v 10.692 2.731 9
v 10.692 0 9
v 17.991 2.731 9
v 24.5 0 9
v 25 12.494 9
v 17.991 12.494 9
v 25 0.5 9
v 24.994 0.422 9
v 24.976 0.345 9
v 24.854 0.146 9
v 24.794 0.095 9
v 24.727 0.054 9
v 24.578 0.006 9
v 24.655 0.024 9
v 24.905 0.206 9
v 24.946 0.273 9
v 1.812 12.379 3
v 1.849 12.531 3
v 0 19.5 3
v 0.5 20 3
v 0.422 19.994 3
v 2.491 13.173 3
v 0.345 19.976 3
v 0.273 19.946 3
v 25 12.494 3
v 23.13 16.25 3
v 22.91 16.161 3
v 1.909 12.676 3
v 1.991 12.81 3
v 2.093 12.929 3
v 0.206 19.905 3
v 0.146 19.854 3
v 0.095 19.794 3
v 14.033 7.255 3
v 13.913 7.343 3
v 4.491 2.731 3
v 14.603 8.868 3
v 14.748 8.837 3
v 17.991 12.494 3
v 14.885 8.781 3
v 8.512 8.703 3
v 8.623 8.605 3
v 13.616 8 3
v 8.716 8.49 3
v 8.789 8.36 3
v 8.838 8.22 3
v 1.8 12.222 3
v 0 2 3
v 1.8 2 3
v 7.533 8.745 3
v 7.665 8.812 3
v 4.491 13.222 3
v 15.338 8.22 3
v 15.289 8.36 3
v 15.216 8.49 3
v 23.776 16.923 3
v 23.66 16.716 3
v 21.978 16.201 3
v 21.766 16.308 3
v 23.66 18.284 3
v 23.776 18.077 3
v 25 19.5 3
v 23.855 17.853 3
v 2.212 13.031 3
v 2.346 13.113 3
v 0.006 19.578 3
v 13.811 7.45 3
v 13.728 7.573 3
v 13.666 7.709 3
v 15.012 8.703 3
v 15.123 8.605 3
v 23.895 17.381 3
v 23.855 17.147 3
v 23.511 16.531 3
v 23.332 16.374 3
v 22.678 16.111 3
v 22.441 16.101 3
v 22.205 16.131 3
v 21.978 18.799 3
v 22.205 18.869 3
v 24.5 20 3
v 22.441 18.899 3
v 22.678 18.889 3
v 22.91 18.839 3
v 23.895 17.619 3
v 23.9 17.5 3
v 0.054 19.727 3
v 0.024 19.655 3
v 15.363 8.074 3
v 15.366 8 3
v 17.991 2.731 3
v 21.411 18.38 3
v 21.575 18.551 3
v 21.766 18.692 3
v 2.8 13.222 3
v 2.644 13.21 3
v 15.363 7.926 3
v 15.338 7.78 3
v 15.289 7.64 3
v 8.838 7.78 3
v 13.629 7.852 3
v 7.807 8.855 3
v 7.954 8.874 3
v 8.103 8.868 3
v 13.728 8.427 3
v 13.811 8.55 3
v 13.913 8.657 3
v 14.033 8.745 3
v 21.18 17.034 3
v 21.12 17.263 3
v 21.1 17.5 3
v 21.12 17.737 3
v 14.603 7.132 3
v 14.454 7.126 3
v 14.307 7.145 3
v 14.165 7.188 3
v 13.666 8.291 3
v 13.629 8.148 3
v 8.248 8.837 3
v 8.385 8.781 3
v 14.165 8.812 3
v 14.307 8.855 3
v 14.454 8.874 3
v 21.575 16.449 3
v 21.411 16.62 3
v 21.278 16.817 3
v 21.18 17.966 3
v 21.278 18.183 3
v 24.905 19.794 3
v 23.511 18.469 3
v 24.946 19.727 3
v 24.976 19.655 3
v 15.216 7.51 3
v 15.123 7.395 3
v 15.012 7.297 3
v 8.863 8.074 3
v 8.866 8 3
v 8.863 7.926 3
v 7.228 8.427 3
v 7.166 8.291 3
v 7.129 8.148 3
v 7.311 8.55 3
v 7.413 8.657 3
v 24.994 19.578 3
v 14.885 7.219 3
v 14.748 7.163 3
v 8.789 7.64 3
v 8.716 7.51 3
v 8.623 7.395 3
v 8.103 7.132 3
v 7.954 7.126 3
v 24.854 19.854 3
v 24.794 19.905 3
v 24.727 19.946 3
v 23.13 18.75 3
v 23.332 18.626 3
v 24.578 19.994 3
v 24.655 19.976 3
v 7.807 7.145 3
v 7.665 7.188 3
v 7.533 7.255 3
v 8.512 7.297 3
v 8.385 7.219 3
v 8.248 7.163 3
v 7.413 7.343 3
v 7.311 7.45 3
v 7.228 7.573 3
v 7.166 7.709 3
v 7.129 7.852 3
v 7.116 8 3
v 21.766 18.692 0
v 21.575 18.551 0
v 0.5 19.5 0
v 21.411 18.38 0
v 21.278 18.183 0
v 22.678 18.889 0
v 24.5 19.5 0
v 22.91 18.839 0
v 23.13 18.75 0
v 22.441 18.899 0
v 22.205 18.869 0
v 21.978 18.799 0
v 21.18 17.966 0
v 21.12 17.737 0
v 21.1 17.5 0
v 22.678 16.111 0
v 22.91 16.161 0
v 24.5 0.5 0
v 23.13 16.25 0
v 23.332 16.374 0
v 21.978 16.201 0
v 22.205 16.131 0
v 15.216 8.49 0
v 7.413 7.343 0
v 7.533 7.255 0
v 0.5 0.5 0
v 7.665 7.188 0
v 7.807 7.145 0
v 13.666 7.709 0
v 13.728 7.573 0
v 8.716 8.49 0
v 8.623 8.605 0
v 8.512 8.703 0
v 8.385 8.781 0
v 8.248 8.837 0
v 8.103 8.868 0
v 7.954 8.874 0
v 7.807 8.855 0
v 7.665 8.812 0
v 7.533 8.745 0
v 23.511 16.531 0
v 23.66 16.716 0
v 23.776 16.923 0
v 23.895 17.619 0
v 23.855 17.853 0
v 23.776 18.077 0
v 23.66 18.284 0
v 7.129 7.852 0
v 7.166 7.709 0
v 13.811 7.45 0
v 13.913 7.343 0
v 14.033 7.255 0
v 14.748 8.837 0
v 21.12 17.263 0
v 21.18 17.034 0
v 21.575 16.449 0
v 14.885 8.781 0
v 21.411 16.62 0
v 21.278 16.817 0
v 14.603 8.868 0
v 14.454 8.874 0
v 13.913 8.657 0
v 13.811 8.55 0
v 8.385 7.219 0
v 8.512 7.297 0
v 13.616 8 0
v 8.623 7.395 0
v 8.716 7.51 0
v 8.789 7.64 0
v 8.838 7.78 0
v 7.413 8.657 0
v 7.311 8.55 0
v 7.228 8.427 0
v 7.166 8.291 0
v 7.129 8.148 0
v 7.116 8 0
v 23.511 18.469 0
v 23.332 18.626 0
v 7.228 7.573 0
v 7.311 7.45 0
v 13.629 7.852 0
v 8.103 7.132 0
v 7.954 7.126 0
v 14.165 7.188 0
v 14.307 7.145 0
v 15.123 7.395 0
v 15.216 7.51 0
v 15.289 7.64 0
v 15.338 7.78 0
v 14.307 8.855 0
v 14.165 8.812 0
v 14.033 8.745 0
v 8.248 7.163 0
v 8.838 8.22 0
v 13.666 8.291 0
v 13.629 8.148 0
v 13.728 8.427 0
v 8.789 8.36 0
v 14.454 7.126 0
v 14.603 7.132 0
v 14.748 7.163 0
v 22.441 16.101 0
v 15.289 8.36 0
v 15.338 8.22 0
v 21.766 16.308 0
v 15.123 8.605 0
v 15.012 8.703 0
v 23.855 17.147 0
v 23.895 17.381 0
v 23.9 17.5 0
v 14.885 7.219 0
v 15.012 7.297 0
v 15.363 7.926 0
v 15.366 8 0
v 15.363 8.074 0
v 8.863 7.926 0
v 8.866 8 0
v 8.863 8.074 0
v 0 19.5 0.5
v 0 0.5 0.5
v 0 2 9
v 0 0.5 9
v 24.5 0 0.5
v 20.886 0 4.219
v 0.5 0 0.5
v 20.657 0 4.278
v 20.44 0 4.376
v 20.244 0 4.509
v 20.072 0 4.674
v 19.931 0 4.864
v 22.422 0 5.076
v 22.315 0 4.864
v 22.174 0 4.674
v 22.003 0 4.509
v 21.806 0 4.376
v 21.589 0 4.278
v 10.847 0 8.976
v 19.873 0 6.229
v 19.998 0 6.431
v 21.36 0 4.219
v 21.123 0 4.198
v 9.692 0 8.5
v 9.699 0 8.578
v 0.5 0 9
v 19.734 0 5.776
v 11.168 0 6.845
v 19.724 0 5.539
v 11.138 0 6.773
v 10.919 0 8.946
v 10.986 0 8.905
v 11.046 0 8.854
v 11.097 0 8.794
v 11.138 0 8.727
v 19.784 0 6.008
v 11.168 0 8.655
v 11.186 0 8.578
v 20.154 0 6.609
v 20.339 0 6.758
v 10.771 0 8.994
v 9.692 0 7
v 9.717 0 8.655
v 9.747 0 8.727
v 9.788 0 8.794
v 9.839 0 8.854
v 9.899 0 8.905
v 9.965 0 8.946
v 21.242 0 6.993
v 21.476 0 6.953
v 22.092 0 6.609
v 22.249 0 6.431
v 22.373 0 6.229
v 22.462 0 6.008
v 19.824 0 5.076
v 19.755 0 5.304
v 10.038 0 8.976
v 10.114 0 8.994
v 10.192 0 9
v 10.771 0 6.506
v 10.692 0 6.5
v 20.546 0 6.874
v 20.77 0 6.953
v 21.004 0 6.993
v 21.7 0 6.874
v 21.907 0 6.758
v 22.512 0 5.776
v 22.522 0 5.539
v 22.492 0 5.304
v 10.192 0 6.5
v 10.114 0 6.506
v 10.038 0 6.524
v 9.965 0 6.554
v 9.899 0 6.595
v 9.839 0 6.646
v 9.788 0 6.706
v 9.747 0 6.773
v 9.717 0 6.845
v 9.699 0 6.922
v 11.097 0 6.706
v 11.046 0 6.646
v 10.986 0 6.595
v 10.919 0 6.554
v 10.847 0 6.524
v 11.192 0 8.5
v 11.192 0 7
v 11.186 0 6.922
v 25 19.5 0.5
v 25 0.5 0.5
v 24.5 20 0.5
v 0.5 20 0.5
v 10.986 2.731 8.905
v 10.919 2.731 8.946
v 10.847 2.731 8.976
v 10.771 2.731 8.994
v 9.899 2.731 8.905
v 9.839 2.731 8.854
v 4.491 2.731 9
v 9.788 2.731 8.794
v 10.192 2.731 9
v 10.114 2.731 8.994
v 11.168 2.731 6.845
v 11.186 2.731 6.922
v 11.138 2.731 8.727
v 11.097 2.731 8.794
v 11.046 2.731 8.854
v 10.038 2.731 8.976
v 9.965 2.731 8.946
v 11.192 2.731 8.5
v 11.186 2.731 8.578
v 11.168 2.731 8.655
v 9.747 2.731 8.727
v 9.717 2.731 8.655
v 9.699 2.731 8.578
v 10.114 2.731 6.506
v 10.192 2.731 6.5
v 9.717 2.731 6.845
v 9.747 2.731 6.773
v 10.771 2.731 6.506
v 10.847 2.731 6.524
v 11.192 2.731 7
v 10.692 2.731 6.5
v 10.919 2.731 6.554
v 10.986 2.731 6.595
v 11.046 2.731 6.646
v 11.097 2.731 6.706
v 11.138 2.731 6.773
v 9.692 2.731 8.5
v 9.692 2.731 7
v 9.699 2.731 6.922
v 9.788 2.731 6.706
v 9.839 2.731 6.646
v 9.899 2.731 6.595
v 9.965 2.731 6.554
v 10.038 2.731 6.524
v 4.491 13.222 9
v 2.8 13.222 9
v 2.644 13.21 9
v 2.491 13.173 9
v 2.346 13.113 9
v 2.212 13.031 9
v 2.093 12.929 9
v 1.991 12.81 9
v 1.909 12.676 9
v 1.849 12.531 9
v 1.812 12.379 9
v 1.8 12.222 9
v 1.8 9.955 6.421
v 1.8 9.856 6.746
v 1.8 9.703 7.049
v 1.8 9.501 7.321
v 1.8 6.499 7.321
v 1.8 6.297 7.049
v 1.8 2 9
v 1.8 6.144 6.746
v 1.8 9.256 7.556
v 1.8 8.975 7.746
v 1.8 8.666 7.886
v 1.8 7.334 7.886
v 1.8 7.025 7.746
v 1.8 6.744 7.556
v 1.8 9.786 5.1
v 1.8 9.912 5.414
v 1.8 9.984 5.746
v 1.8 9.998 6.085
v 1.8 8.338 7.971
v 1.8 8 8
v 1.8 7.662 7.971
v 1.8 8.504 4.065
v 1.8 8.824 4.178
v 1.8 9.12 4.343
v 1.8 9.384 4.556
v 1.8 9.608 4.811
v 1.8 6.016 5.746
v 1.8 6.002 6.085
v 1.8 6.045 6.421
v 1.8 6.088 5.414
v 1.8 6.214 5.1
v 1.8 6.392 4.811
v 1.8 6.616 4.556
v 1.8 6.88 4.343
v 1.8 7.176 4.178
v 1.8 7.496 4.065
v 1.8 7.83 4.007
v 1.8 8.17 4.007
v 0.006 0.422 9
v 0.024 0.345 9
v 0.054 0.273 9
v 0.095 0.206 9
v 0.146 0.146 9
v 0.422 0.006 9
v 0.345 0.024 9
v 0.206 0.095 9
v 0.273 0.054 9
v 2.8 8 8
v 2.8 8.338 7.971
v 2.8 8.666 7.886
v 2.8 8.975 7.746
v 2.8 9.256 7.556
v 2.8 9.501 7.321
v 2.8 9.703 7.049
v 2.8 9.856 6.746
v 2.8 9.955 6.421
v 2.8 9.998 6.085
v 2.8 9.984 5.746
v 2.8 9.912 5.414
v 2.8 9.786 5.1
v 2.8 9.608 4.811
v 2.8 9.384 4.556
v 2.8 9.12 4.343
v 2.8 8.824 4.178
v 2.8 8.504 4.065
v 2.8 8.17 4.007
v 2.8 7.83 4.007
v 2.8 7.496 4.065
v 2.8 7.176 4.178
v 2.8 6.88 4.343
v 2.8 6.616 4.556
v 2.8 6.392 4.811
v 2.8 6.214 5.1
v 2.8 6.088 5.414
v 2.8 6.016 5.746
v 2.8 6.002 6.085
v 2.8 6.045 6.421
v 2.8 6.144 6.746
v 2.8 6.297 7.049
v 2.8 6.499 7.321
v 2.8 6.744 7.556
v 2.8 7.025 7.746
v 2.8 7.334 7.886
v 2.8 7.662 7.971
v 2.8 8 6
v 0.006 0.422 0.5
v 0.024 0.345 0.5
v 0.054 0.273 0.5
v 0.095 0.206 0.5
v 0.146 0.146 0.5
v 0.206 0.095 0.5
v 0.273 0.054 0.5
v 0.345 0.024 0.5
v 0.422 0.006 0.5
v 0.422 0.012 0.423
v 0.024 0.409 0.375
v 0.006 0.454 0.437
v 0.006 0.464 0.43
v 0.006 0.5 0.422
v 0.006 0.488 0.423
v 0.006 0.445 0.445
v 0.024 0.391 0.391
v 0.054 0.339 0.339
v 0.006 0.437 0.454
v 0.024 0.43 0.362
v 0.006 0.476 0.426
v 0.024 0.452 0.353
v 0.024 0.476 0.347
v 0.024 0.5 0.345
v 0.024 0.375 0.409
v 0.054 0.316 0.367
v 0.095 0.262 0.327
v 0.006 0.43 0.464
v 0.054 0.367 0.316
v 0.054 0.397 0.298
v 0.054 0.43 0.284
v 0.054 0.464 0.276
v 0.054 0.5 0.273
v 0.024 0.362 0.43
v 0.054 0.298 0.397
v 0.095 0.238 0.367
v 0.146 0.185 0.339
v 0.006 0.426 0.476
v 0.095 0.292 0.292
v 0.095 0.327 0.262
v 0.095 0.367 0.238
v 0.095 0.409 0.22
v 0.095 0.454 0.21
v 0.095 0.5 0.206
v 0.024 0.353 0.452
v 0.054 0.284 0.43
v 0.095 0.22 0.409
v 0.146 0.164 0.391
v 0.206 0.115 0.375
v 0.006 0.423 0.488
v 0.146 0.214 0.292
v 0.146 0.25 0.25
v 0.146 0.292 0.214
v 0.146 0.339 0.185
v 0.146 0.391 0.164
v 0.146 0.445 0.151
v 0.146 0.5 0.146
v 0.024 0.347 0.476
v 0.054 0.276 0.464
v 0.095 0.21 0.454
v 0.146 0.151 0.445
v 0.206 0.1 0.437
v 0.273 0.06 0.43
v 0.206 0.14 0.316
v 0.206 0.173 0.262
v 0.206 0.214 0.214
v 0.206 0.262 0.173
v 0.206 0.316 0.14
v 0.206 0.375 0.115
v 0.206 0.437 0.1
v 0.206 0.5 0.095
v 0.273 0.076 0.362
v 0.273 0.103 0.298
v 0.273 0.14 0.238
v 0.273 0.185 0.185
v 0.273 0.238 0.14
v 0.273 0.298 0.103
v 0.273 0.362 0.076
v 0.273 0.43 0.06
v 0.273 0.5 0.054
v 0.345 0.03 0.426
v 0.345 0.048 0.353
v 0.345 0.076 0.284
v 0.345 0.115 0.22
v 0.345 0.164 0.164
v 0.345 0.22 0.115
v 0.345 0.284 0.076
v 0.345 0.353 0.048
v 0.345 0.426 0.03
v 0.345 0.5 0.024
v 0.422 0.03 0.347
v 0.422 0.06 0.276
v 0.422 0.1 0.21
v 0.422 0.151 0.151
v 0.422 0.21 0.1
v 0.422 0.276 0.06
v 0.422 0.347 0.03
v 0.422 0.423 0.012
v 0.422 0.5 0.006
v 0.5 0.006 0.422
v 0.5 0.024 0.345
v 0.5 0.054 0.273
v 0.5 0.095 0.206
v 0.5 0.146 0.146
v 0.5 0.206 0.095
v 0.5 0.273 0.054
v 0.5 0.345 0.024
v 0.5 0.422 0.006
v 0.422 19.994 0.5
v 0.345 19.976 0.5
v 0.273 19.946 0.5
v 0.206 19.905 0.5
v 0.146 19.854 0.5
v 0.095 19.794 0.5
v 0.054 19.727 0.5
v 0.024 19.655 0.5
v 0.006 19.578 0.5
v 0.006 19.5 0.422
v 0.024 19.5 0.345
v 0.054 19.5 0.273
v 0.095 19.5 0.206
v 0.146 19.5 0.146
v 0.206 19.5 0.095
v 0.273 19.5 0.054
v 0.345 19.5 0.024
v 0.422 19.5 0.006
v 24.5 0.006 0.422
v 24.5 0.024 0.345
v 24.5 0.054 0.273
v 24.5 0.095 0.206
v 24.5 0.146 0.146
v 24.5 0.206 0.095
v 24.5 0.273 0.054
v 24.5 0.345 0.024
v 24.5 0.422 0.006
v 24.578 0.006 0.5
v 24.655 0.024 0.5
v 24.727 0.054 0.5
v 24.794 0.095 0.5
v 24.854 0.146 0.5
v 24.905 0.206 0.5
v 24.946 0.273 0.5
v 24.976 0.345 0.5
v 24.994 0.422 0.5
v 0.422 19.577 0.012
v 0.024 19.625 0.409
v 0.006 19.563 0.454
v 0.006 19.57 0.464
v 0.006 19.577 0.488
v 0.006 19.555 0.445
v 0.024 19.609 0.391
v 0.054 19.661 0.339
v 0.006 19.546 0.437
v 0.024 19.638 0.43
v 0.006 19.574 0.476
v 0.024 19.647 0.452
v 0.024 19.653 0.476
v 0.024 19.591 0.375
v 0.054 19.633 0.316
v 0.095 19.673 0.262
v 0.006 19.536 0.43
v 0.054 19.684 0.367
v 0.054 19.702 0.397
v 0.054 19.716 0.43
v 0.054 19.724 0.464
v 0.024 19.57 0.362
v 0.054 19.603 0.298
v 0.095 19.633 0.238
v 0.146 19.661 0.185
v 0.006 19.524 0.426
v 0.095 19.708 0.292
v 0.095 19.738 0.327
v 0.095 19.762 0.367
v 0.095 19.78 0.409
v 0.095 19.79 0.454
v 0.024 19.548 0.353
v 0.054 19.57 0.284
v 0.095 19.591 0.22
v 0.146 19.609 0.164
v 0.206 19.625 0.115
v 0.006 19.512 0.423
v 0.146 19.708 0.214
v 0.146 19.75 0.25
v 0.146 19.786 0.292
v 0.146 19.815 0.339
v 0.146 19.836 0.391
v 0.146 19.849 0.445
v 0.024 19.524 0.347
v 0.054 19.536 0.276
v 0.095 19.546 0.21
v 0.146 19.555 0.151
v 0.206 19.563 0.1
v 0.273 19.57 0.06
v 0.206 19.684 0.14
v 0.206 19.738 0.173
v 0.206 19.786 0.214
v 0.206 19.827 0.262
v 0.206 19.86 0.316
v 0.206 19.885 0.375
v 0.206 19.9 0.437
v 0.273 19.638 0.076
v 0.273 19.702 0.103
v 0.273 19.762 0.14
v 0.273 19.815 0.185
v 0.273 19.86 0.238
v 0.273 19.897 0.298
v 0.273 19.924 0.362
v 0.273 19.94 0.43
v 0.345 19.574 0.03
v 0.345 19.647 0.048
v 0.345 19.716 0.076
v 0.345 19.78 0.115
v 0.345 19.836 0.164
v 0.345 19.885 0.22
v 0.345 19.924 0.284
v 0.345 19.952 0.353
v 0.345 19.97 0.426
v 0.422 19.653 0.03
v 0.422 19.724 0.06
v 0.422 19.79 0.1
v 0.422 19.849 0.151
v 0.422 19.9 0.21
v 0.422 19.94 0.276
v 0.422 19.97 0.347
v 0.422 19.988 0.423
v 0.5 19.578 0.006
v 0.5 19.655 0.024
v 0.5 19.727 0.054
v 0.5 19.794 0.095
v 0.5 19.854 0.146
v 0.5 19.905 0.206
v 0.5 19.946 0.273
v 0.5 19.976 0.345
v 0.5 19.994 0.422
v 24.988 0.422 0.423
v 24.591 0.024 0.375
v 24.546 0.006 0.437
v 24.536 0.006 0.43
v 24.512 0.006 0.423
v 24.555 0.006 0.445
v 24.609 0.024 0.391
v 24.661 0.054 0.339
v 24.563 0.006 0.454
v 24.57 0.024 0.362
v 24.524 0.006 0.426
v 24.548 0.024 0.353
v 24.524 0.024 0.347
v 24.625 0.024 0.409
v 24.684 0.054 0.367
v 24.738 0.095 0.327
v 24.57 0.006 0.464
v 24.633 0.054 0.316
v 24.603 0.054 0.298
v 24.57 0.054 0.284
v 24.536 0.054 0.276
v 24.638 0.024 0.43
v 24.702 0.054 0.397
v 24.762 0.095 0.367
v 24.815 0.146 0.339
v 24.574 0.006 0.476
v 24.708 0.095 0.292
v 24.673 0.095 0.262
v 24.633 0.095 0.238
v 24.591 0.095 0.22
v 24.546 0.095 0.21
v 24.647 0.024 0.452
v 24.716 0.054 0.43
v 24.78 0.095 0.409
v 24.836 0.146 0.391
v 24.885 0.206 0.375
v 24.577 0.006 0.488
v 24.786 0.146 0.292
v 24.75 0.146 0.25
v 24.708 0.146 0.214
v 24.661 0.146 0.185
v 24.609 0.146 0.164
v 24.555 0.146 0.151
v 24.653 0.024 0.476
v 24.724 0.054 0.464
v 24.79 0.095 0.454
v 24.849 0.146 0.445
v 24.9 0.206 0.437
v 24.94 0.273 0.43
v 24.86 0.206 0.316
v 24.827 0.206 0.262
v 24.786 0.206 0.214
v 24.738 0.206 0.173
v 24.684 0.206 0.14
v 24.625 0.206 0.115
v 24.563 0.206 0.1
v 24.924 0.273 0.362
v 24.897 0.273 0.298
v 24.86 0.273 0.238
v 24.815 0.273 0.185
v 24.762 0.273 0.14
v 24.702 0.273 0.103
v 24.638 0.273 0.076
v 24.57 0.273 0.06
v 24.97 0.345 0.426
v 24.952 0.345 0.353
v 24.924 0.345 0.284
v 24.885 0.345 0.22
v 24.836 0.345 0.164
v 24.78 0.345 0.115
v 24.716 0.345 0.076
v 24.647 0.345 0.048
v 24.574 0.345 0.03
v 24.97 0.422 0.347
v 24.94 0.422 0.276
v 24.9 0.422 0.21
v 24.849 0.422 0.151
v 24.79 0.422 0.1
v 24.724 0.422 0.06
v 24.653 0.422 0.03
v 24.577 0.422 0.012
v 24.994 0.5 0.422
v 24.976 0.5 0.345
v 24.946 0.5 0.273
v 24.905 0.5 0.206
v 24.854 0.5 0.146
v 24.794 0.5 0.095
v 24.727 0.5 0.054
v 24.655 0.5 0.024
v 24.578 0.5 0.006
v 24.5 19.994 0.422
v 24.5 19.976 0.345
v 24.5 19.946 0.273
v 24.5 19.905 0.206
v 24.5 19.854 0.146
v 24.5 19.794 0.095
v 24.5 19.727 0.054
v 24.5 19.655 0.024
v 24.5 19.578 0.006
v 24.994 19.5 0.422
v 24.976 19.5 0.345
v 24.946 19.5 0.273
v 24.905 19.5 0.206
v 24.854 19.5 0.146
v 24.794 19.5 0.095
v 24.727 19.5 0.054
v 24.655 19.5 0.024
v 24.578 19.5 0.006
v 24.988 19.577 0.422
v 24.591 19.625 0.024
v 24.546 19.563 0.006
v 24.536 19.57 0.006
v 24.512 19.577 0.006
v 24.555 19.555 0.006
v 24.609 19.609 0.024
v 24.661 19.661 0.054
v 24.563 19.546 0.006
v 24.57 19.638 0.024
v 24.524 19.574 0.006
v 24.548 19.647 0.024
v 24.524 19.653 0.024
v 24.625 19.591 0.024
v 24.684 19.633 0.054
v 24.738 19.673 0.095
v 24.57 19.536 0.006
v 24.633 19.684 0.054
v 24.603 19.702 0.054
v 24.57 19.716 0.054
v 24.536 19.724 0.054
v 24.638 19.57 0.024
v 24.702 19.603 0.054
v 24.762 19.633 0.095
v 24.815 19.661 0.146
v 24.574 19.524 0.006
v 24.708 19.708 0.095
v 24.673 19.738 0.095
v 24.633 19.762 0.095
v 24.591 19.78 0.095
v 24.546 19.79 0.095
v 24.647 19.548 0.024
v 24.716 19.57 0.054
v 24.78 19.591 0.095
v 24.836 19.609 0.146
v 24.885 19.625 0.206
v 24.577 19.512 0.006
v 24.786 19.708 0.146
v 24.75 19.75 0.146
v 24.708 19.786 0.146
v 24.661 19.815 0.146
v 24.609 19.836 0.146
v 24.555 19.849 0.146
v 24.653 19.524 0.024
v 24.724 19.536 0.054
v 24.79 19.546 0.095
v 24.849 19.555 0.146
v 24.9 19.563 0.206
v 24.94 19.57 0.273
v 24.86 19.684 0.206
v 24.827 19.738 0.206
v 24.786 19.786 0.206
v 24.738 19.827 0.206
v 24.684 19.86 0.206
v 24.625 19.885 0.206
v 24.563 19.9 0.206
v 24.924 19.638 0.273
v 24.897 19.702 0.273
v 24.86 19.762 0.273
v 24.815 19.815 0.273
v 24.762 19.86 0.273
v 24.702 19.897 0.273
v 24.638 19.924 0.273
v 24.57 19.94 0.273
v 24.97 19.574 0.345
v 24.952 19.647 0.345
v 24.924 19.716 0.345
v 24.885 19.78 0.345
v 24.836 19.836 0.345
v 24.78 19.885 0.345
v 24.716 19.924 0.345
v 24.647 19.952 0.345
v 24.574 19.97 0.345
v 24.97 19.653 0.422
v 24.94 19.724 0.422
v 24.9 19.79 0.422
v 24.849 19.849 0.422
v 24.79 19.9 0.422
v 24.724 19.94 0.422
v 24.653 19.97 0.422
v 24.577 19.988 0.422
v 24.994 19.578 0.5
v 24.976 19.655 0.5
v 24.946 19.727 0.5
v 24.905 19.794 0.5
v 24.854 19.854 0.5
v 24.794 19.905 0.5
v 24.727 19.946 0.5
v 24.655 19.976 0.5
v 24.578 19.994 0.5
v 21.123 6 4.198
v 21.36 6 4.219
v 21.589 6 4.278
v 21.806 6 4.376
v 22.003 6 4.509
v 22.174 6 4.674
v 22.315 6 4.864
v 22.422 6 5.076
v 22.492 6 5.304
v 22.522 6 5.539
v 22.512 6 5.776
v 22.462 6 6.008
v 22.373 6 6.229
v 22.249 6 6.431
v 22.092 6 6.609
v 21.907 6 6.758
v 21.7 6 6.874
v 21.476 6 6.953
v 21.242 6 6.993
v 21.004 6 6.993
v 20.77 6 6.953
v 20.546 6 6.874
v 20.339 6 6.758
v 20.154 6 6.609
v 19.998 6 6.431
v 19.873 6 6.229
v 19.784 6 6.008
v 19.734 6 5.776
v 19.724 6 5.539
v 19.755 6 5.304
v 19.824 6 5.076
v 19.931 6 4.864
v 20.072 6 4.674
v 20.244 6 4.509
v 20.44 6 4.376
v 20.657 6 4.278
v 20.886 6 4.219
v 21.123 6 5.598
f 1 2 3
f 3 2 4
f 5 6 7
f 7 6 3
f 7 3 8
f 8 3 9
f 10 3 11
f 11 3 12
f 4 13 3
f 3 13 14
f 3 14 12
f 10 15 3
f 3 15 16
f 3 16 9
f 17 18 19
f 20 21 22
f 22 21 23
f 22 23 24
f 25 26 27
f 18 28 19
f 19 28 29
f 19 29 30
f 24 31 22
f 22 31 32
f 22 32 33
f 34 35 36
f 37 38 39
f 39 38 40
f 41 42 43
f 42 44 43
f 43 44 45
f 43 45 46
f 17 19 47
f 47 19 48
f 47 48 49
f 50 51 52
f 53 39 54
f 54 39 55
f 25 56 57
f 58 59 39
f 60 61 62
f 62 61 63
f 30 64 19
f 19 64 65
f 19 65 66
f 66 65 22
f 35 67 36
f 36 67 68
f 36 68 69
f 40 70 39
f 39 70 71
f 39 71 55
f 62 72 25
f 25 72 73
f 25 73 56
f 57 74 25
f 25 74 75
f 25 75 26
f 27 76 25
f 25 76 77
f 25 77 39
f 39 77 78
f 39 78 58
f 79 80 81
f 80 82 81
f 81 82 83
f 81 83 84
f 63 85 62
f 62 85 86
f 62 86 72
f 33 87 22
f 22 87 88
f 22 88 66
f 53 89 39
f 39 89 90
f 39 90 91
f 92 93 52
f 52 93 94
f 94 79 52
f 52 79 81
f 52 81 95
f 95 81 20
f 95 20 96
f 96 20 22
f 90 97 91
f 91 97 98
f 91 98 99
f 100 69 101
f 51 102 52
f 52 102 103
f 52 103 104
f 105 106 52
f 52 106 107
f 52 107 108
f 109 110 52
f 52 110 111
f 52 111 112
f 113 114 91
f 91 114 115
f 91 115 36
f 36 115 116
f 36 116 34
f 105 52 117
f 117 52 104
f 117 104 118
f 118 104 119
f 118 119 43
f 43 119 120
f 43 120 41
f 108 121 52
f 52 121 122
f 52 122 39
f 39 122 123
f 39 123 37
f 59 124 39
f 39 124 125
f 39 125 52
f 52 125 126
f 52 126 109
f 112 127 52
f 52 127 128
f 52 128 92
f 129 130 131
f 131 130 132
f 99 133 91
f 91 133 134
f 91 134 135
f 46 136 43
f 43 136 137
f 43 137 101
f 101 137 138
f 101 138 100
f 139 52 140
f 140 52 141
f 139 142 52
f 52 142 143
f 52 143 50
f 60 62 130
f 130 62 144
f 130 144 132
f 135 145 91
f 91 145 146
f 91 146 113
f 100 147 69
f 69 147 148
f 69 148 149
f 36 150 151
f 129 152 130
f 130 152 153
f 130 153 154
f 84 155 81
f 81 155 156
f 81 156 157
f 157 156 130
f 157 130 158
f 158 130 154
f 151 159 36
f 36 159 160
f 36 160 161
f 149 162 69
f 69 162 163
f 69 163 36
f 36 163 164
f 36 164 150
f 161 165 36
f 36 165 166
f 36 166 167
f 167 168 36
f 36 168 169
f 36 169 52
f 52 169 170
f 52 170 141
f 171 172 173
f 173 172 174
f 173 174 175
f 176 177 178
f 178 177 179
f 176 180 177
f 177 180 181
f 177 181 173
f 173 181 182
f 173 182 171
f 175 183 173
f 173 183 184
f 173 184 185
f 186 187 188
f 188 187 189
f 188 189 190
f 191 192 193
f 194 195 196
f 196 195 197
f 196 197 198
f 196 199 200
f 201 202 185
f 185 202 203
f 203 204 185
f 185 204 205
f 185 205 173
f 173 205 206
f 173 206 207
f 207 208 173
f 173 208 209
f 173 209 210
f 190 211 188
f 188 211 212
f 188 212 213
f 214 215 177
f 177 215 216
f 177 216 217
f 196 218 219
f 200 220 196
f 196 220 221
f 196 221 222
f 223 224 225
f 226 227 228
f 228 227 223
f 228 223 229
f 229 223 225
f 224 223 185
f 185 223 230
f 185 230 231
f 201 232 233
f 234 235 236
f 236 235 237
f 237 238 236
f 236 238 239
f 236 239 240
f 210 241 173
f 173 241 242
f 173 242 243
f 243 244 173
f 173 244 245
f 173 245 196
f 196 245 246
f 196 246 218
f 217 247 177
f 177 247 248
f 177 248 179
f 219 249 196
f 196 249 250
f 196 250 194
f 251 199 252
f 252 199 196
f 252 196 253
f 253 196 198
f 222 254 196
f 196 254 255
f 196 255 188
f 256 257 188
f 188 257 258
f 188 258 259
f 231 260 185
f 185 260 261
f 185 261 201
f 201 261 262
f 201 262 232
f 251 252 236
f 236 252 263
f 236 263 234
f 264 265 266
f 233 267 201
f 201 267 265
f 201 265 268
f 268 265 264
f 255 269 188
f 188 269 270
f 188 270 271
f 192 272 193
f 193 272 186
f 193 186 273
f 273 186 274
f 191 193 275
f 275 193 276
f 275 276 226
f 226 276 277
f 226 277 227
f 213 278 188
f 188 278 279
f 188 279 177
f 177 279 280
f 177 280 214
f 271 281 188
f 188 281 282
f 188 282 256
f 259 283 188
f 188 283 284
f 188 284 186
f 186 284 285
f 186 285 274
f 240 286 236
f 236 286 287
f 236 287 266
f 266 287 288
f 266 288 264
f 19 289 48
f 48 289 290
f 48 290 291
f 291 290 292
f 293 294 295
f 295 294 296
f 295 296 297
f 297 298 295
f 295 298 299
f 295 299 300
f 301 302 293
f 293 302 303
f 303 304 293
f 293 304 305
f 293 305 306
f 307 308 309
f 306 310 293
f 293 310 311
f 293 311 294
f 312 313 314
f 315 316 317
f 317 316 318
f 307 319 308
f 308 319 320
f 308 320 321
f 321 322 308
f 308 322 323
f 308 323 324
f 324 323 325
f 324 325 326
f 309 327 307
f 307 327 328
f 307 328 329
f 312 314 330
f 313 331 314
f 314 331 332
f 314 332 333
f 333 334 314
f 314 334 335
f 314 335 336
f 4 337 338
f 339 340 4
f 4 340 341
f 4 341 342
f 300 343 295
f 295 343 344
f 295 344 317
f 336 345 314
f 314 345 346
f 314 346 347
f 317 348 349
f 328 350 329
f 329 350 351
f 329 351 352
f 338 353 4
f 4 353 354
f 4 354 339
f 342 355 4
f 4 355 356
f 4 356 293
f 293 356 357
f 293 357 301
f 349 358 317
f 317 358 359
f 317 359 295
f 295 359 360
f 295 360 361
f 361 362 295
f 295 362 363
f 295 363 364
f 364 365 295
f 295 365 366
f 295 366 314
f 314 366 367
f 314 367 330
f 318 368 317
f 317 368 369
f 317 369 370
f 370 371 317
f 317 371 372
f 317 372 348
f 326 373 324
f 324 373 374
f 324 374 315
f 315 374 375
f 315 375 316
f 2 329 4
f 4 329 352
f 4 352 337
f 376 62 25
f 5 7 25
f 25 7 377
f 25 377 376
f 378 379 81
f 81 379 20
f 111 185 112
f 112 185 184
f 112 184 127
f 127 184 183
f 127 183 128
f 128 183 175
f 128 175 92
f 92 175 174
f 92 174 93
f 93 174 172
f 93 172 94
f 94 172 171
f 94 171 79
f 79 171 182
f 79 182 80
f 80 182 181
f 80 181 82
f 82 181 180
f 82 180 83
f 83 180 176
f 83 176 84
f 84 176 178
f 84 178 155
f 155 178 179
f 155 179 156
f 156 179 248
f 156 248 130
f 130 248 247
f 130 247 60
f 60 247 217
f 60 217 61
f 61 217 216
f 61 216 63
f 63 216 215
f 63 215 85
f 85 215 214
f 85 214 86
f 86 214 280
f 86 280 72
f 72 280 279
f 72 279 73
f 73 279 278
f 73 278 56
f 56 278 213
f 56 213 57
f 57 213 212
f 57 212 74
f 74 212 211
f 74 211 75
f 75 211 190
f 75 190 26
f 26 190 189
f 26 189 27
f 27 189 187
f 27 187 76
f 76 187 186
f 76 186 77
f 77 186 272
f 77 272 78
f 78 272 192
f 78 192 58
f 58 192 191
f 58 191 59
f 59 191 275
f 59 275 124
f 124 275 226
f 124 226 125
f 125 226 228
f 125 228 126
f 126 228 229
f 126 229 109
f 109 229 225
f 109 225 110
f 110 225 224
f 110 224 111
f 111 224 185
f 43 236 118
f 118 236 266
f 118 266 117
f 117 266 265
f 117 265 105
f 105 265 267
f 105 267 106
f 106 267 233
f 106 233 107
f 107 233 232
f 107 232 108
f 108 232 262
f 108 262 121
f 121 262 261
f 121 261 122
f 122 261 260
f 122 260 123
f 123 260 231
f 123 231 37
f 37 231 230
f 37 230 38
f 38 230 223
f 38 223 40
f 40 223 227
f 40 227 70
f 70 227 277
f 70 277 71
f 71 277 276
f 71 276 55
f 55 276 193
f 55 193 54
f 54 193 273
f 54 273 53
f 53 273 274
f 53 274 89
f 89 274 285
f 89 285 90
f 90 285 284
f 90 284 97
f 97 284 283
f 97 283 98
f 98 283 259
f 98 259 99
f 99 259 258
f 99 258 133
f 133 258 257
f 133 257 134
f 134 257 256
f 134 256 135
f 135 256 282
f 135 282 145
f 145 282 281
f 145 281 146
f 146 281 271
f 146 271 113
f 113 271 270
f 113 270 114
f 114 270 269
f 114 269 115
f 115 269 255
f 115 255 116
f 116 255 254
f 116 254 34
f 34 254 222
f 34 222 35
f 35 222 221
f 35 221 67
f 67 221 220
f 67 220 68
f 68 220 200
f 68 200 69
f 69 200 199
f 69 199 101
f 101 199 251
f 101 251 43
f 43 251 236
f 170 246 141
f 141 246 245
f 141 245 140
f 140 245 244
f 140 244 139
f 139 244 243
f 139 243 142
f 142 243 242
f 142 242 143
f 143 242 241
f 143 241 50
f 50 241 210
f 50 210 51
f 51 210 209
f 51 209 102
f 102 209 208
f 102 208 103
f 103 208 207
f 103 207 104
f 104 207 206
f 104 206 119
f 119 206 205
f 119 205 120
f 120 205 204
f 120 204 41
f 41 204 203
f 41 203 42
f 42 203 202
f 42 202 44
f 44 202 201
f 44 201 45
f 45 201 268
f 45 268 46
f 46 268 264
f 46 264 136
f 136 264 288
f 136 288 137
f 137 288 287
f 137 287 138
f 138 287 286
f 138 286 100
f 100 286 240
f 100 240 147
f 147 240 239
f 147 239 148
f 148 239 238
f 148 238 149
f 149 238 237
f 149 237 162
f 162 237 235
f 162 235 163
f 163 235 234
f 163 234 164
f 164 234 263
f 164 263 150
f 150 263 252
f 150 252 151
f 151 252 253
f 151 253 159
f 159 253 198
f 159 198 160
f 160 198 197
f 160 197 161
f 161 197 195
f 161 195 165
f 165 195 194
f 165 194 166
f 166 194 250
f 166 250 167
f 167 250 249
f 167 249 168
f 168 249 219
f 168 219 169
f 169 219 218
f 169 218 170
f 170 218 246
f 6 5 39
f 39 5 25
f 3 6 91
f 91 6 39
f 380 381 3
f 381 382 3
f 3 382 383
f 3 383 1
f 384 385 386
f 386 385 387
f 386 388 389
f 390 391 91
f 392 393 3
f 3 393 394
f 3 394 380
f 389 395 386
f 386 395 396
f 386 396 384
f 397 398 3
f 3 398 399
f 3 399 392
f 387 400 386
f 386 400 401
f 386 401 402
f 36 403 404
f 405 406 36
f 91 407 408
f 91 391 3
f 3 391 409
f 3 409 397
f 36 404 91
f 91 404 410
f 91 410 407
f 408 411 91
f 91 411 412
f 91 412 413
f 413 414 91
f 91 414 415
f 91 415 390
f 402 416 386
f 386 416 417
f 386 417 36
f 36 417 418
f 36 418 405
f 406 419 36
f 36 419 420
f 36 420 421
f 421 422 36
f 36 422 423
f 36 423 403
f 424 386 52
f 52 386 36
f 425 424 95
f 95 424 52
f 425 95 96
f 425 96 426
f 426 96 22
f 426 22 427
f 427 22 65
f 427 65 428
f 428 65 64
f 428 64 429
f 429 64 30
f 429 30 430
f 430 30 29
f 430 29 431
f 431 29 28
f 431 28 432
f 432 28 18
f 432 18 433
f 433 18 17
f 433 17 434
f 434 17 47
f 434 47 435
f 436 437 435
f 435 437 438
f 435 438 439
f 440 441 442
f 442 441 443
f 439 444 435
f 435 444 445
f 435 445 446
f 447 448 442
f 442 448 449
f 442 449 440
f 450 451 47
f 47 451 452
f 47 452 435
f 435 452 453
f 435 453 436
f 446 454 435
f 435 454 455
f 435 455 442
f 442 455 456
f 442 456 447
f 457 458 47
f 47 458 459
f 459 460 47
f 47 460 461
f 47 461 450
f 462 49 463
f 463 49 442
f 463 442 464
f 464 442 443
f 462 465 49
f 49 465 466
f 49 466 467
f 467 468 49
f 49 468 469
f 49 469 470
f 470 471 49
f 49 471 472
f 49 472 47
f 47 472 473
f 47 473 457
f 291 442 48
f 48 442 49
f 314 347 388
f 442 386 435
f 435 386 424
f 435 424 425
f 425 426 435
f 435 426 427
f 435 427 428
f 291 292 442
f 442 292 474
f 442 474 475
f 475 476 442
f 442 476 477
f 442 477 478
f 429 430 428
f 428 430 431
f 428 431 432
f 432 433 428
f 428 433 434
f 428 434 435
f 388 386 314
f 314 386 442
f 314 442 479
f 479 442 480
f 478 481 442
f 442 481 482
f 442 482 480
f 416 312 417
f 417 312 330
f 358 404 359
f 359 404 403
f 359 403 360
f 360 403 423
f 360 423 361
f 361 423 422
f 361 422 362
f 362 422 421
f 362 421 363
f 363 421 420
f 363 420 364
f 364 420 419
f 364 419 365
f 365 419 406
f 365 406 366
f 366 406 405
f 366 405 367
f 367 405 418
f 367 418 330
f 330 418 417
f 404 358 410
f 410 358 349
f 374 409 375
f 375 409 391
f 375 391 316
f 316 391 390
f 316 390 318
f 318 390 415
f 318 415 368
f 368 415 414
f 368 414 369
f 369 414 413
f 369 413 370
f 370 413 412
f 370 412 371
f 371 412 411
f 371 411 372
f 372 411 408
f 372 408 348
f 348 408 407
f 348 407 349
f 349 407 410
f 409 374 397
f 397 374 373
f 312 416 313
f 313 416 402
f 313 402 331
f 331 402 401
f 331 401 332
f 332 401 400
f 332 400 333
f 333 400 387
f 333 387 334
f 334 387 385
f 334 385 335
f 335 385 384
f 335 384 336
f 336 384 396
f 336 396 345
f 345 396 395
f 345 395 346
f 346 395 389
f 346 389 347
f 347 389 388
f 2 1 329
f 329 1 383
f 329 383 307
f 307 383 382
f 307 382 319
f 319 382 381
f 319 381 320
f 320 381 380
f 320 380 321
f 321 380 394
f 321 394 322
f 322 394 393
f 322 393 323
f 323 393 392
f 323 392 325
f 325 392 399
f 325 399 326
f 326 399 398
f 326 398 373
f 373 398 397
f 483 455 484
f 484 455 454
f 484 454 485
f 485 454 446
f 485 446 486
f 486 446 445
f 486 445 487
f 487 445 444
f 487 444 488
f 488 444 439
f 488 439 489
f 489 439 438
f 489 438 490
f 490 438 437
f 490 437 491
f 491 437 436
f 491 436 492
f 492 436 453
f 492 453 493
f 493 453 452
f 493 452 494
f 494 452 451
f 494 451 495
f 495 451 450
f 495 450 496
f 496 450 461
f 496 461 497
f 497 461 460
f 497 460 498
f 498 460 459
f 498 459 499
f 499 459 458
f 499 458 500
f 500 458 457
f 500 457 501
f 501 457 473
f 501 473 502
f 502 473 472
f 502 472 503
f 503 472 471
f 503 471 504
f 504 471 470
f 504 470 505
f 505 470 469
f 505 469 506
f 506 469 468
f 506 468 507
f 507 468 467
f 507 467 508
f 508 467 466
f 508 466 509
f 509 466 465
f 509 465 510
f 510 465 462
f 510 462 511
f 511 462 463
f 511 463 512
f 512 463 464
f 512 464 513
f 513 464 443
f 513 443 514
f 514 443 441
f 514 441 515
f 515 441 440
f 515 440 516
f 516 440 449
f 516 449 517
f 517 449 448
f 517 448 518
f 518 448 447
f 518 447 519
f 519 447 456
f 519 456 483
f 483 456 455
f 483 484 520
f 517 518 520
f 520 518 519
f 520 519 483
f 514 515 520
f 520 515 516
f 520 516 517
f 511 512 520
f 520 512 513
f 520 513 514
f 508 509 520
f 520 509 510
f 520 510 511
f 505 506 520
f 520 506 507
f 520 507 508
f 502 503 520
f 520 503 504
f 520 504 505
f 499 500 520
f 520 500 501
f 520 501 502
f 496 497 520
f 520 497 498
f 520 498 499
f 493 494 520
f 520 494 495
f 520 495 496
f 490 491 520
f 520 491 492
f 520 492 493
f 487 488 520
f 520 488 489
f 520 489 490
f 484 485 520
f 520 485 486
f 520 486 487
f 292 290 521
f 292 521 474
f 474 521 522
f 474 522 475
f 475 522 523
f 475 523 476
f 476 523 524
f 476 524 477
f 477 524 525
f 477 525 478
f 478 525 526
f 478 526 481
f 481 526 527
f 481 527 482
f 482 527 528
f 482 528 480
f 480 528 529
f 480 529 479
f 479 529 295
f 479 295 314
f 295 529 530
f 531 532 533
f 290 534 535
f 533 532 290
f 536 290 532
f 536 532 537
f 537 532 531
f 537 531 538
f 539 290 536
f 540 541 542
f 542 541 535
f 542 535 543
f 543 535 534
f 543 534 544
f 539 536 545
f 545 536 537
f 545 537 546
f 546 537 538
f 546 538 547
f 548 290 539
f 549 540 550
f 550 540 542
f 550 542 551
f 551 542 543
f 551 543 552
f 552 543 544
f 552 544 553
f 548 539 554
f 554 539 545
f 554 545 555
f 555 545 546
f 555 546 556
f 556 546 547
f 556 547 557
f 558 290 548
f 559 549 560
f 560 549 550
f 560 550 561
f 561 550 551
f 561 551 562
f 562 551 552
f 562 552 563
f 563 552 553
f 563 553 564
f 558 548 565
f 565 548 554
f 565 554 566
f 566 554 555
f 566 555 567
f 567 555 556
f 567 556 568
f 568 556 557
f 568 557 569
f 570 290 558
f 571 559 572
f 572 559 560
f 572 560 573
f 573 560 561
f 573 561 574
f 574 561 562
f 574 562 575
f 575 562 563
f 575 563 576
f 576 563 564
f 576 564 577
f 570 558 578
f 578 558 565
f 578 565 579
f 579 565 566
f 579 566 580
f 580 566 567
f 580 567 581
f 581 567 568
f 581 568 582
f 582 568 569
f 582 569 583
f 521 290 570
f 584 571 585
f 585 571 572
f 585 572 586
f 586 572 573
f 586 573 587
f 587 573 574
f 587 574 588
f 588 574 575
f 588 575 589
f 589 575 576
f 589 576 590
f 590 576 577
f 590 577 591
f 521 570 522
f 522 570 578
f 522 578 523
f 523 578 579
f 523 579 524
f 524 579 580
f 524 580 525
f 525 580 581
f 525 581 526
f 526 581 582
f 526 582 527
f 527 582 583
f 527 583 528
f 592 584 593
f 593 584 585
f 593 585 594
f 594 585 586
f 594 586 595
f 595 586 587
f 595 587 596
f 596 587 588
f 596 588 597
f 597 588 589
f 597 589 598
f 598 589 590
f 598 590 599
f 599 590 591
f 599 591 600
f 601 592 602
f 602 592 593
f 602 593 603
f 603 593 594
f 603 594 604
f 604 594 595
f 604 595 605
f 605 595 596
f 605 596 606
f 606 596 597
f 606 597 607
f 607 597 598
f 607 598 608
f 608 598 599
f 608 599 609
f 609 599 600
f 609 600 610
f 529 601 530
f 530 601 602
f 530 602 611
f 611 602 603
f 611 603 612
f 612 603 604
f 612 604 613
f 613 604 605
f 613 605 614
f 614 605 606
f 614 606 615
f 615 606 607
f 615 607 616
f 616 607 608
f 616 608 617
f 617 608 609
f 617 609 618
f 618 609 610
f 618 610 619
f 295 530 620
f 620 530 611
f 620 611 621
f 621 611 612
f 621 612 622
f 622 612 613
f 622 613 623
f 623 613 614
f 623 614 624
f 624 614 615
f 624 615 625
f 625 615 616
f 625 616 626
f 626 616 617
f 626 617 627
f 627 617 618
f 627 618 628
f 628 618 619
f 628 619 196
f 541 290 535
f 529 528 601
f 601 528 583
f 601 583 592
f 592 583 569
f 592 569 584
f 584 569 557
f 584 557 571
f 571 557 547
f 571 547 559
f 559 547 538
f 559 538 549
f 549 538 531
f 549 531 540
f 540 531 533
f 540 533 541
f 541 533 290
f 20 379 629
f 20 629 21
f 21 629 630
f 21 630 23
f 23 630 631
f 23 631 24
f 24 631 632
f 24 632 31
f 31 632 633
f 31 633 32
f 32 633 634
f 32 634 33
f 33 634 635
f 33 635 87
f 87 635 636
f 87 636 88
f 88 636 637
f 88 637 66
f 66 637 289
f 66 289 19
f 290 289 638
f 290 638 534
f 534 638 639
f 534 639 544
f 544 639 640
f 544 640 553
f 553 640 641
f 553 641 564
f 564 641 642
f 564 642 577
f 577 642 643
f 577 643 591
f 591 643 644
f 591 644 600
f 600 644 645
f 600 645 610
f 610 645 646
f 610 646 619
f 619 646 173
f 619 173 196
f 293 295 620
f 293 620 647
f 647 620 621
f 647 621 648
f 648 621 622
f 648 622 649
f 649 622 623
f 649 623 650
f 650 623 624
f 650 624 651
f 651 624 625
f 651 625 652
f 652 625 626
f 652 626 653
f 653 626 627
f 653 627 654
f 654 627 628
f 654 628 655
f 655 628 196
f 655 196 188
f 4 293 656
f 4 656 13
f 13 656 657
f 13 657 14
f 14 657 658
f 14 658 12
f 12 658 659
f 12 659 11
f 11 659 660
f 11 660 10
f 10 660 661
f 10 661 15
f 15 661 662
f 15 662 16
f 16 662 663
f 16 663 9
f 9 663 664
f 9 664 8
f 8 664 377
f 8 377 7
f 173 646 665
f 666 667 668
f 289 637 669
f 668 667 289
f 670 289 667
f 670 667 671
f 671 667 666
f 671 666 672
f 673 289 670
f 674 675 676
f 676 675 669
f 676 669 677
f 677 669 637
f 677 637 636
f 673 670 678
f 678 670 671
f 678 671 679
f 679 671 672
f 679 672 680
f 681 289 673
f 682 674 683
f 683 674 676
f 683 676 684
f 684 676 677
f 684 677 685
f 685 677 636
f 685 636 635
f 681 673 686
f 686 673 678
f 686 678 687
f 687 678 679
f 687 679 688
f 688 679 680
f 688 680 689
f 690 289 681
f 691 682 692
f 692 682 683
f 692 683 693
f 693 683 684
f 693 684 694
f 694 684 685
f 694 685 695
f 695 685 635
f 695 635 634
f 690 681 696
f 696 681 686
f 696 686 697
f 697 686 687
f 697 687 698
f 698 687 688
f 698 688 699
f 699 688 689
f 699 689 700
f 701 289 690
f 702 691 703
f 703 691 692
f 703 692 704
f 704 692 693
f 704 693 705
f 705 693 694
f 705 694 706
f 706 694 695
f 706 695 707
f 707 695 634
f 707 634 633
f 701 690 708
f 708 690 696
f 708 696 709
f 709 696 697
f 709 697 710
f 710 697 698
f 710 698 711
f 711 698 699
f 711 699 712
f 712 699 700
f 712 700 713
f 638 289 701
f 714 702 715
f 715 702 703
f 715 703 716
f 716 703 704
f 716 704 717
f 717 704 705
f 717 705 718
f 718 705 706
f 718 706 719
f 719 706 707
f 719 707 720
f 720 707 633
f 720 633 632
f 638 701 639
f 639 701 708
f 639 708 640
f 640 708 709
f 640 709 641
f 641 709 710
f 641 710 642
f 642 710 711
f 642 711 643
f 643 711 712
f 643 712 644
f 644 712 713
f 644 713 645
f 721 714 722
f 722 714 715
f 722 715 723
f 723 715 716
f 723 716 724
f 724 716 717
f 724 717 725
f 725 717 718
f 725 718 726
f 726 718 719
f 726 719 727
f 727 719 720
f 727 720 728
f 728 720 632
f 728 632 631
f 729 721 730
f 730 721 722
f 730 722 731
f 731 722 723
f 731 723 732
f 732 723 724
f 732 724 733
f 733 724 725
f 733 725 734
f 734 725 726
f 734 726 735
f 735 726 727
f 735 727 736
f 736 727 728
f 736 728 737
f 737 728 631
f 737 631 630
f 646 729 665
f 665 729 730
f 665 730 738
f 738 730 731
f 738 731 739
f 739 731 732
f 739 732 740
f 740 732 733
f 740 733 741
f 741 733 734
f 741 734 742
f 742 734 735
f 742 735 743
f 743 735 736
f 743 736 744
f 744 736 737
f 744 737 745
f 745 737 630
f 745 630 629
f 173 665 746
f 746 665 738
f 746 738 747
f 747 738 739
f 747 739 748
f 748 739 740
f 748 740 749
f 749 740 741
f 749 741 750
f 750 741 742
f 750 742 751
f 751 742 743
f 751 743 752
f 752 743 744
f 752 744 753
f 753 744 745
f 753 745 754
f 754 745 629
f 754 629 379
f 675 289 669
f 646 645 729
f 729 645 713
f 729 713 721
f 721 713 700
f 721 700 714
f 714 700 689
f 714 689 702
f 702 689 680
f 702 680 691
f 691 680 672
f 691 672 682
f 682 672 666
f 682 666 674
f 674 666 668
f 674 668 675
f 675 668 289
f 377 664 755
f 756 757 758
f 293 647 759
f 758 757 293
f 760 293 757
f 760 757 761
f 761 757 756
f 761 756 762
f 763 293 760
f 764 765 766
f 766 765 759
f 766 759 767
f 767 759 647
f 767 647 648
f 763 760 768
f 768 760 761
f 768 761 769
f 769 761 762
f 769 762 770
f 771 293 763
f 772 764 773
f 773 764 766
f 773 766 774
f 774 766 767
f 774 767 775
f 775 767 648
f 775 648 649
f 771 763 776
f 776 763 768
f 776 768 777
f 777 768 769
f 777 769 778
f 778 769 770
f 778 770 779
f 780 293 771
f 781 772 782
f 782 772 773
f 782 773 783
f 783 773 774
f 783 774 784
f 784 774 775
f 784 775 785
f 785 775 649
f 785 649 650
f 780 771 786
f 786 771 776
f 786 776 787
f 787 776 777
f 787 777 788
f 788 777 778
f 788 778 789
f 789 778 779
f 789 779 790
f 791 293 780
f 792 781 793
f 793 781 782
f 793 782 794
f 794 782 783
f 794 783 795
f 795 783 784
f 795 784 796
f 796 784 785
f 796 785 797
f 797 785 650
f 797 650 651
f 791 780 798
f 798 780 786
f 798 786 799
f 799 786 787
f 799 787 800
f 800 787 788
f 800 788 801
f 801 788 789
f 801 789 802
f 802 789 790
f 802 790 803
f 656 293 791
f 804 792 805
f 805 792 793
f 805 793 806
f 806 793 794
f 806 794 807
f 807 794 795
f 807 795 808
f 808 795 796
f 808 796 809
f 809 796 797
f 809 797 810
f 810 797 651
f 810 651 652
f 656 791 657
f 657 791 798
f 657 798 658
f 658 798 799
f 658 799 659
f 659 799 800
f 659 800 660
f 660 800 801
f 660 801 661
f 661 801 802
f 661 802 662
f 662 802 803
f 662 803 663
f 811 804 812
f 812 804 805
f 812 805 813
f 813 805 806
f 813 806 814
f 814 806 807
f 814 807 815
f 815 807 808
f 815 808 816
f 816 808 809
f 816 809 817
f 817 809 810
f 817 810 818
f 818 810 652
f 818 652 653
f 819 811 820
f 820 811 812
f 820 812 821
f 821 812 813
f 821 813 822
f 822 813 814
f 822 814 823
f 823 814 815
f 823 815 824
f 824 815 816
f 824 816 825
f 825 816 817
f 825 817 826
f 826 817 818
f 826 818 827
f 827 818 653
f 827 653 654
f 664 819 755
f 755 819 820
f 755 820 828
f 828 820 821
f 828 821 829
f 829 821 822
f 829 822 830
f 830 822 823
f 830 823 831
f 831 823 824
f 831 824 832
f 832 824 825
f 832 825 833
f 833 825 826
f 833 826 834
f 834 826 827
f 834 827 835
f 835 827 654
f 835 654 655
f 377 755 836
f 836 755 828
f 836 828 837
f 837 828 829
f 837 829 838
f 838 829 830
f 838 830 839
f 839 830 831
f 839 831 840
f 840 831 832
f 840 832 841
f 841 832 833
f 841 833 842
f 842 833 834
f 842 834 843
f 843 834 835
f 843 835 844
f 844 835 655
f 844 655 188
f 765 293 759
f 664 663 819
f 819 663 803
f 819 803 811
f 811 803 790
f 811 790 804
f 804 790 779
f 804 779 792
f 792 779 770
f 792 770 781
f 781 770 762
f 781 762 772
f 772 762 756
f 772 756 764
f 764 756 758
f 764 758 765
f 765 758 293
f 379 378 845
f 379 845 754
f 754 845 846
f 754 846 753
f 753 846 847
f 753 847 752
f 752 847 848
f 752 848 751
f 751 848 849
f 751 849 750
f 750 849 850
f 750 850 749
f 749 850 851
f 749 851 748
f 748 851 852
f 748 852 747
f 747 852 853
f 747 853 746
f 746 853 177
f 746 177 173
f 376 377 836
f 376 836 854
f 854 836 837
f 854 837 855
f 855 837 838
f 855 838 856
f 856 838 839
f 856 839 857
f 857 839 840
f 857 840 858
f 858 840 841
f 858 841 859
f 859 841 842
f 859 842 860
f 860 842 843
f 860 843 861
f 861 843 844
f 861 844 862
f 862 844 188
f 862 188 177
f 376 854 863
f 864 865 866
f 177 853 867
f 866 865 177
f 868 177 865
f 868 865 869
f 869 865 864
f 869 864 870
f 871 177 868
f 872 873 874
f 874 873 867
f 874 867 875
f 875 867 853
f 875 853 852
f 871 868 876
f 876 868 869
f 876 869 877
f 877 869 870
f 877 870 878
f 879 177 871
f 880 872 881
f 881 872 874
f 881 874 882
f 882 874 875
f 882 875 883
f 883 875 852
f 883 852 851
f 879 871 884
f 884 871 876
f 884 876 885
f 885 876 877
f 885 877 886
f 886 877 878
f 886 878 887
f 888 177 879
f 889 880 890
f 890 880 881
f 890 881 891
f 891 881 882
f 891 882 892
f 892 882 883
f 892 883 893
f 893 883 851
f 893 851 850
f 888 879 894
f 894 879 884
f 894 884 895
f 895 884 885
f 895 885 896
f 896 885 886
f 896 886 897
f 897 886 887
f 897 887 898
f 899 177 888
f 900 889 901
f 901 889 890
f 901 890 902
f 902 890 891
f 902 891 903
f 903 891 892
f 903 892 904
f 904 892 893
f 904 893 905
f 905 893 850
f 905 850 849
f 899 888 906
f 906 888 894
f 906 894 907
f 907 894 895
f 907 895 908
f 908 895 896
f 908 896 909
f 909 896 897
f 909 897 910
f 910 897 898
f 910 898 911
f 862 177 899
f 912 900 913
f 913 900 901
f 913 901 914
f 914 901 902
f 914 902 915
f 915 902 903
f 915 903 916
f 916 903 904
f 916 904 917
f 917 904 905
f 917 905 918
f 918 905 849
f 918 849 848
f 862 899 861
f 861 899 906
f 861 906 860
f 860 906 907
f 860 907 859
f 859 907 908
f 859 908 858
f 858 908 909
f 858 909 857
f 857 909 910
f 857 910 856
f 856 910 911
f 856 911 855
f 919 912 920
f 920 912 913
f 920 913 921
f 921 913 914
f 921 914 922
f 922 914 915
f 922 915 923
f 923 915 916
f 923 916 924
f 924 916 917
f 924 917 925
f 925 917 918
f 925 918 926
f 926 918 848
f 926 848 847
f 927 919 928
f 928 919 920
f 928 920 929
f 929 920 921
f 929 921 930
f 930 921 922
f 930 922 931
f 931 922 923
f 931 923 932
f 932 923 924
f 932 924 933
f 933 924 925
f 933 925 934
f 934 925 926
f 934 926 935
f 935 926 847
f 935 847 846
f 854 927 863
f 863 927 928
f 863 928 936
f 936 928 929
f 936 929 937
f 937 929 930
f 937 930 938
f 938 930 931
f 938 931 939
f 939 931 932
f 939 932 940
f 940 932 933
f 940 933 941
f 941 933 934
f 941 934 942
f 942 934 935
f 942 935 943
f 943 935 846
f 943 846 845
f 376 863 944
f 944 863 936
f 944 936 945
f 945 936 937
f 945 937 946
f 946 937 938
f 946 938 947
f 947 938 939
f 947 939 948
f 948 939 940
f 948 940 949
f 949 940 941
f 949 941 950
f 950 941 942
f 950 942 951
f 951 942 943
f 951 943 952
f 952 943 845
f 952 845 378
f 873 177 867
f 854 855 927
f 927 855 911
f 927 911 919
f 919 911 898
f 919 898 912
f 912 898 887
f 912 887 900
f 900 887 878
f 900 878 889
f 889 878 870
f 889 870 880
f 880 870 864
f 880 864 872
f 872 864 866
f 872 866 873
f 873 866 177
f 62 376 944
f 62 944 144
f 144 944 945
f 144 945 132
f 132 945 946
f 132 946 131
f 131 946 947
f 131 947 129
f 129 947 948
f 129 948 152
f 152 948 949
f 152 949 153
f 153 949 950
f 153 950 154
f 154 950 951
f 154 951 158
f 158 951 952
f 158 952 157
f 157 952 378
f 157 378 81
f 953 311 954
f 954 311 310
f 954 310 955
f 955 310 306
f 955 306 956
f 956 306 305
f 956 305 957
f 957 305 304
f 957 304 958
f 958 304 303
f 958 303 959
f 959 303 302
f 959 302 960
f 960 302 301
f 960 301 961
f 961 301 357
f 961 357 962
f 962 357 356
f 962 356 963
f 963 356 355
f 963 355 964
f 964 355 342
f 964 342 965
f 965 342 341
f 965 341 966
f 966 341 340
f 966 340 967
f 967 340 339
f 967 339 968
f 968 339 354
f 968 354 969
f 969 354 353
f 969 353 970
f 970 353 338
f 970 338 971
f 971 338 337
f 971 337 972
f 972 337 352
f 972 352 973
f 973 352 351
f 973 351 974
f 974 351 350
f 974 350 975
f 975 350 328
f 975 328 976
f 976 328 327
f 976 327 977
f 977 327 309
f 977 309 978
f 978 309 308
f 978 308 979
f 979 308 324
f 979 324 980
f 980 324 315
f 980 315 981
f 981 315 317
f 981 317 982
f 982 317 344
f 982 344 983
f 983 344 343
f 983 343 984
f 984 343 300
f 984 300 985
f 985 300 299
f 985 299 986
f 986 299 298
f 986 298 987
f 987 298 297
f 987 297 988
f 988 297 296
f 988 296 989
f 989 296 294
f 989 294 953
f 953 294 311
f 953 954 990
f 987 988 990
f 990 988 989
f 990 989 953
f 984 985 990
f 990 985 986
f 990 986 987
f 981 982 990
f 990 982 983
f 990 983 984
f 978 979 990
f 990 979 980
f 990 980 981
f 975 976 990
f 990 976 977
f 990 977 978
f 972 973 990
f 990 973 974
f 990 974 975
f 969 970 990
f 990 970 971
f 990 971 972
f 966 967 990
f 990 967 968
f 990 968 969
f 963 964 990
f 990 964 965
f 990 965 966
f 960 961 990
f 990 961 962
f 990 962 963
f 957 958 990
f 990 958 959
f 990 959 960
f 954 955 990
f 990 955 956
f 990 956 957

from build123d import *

# Parameters (mm, degrees)
ESQUISSE1_W             = 25
ESQUISSE1_H             = 20
ESQUISSE1_R             = 1.4
ESQUISSE1_R_2           = 0.875
BOSS_EXTRU_1_DEPTH      = 3
BOSS_EXTRU_2_DEPTH      = 6
ENL_V_MAT_EXTRU_1_DEPTH = 6
ESQUISSE4_R             = 2
ENL_V_MAT_EXTRU_2_DEPTH = 1
CONG_1_R                = 0.5
ESQUISSE5_R             = 1.4
ENL_V_MAT_EXTRU_3_DEPTH = 6


with BuildPart() as part:
    # Esquisse1 → Boss.-Extru.1 (new body)
    with BuildSketch(Plane.XY):
        with Locations((12.5, 10)):
            Rectangle(ESQUISSE1_W, ESQUISSE1_H)
        with Locations((22.5, 17.5)):
            Circle(ESQUISSE1_R, mode=Mode.SUBTRACT)
        with Locations((14.491447915, 8)):
            Circle(ESQUISSE1_R_2, mode=Mode.SUBTRACT)
        with Locations((7.991447915, 8)):
            Circle(ESQUISSE1_R_2, mode=Mode.SUBTRACT)
    extrude(amount=BOSS_EXTRU_1_DEPTH)

    # Esquisse2 → Boss.-Extru.2 (add)
    with BuildSketch(Plane.XY.offset(3)):
        with BuildLine():
            Line((0, 2), (1.8, 2))
            Line((1.8, 2), (1.8, 12.222275421))
            ThreePointArc((1.8, 12.222275421), (2.092893219, 12.929382202), (2.8, 13.222275421))
            Line((2.8, 13.222275421), (4.491447915, 13.222275421))
            Line((4.491447915, 13.222275421), (4.491447915, 2.730724668))
            Line((4.491447915, 2.730724668), (17.991447915, 2.730724668))
            Line((17.991447915, 2.730724668), (17.991447915, 12.493838982))
            Line((17.991447915, 12.493838982), (25, 12.493838982))
            Line((25, 12.493838982), (25, 0))
            Line((25, 0), (0, 0))
            Line((0, 0), (0, 2))
        make_face()
    extrude(amount=BOSS_EXTRU_2_DEPTH)

    # Esquisse3 → Enlèv. mat.-Extru.1 (cut)
    with BuildSketch(Plane(origin=(0, 2.730724668, 0), x_dir=(1, 0, 0), z_dir=(0, 1, 0))):
        with BuildLine():
            Line((9.692490841, -8.5), (9.692490841, -7))
            ThreePointArc((9.692490841, -7), (9.838937451, -6.646446609), (10.192490841, -6.5))
            Line((10.192490841, -6.5), (10.692490841, -6.5))
            ThreePointArc((10.692490841, -6.5), (11.046044232, -6.646446609), (11.192490841, -7))
            Line((11.192490841, -7), (11.192490841, -8.5))
            ThreePointArc((11.192490841, -8.5), (11.046044232, -8.853553391), (10.692490841, -9))
            Line((10.692490841, -9), (10.192490841, -9))
            ThreePointArc((10.192490841, -9), (9.838937451, -8.853553391), (9.692490841, -8.5))
        make_face()
    extrude(amount=-ENL_V_MAT_EXTRU_1_DEPTH, mode=Mode.SUBTRACT)

    # Esquisse4 → Enlèv. mat.-Extru.2 (cut)
    with BuildSketch(Plane.ZY.offset(-1.8)):
        with Locations((6, 8)):
            Circle(ESQUISSE4_R)
    extrude(amount=-ENL_V_MAT_EXTRU_2_DEPTH, mode=Mode.SUBTRACT)

    # Congé1
    cong_1_edges = [part.edges().sort_by_distance(p)[0] for p in [
        (12.5, 20, 0),
        (25, 10, 0),
        (12.5, 0, 0),
        (0, 10, 0),
        (0, 20, 1.5),
        (25, 20, 1.5),
        (25, 0, 4.5),
        (0, 0, 4.5),
    ]]
    fillet(cong_1_edges, radius=CONG_1_R)

    # Esquisse5 → Enlèv. mat.-Extru.3 (cut)
    with BuildSketch(Plane.XZ):
        with Locations(Location((21.12309895, 5.598466424, 0), (0, 0, 270))):
            Circle(ESQUISSE5_R)
    extrude(amount=-ENL_V_MAT_EXTRU_3_DEPTH, mode=Mode.SUBTRACT)


solid = part.part
